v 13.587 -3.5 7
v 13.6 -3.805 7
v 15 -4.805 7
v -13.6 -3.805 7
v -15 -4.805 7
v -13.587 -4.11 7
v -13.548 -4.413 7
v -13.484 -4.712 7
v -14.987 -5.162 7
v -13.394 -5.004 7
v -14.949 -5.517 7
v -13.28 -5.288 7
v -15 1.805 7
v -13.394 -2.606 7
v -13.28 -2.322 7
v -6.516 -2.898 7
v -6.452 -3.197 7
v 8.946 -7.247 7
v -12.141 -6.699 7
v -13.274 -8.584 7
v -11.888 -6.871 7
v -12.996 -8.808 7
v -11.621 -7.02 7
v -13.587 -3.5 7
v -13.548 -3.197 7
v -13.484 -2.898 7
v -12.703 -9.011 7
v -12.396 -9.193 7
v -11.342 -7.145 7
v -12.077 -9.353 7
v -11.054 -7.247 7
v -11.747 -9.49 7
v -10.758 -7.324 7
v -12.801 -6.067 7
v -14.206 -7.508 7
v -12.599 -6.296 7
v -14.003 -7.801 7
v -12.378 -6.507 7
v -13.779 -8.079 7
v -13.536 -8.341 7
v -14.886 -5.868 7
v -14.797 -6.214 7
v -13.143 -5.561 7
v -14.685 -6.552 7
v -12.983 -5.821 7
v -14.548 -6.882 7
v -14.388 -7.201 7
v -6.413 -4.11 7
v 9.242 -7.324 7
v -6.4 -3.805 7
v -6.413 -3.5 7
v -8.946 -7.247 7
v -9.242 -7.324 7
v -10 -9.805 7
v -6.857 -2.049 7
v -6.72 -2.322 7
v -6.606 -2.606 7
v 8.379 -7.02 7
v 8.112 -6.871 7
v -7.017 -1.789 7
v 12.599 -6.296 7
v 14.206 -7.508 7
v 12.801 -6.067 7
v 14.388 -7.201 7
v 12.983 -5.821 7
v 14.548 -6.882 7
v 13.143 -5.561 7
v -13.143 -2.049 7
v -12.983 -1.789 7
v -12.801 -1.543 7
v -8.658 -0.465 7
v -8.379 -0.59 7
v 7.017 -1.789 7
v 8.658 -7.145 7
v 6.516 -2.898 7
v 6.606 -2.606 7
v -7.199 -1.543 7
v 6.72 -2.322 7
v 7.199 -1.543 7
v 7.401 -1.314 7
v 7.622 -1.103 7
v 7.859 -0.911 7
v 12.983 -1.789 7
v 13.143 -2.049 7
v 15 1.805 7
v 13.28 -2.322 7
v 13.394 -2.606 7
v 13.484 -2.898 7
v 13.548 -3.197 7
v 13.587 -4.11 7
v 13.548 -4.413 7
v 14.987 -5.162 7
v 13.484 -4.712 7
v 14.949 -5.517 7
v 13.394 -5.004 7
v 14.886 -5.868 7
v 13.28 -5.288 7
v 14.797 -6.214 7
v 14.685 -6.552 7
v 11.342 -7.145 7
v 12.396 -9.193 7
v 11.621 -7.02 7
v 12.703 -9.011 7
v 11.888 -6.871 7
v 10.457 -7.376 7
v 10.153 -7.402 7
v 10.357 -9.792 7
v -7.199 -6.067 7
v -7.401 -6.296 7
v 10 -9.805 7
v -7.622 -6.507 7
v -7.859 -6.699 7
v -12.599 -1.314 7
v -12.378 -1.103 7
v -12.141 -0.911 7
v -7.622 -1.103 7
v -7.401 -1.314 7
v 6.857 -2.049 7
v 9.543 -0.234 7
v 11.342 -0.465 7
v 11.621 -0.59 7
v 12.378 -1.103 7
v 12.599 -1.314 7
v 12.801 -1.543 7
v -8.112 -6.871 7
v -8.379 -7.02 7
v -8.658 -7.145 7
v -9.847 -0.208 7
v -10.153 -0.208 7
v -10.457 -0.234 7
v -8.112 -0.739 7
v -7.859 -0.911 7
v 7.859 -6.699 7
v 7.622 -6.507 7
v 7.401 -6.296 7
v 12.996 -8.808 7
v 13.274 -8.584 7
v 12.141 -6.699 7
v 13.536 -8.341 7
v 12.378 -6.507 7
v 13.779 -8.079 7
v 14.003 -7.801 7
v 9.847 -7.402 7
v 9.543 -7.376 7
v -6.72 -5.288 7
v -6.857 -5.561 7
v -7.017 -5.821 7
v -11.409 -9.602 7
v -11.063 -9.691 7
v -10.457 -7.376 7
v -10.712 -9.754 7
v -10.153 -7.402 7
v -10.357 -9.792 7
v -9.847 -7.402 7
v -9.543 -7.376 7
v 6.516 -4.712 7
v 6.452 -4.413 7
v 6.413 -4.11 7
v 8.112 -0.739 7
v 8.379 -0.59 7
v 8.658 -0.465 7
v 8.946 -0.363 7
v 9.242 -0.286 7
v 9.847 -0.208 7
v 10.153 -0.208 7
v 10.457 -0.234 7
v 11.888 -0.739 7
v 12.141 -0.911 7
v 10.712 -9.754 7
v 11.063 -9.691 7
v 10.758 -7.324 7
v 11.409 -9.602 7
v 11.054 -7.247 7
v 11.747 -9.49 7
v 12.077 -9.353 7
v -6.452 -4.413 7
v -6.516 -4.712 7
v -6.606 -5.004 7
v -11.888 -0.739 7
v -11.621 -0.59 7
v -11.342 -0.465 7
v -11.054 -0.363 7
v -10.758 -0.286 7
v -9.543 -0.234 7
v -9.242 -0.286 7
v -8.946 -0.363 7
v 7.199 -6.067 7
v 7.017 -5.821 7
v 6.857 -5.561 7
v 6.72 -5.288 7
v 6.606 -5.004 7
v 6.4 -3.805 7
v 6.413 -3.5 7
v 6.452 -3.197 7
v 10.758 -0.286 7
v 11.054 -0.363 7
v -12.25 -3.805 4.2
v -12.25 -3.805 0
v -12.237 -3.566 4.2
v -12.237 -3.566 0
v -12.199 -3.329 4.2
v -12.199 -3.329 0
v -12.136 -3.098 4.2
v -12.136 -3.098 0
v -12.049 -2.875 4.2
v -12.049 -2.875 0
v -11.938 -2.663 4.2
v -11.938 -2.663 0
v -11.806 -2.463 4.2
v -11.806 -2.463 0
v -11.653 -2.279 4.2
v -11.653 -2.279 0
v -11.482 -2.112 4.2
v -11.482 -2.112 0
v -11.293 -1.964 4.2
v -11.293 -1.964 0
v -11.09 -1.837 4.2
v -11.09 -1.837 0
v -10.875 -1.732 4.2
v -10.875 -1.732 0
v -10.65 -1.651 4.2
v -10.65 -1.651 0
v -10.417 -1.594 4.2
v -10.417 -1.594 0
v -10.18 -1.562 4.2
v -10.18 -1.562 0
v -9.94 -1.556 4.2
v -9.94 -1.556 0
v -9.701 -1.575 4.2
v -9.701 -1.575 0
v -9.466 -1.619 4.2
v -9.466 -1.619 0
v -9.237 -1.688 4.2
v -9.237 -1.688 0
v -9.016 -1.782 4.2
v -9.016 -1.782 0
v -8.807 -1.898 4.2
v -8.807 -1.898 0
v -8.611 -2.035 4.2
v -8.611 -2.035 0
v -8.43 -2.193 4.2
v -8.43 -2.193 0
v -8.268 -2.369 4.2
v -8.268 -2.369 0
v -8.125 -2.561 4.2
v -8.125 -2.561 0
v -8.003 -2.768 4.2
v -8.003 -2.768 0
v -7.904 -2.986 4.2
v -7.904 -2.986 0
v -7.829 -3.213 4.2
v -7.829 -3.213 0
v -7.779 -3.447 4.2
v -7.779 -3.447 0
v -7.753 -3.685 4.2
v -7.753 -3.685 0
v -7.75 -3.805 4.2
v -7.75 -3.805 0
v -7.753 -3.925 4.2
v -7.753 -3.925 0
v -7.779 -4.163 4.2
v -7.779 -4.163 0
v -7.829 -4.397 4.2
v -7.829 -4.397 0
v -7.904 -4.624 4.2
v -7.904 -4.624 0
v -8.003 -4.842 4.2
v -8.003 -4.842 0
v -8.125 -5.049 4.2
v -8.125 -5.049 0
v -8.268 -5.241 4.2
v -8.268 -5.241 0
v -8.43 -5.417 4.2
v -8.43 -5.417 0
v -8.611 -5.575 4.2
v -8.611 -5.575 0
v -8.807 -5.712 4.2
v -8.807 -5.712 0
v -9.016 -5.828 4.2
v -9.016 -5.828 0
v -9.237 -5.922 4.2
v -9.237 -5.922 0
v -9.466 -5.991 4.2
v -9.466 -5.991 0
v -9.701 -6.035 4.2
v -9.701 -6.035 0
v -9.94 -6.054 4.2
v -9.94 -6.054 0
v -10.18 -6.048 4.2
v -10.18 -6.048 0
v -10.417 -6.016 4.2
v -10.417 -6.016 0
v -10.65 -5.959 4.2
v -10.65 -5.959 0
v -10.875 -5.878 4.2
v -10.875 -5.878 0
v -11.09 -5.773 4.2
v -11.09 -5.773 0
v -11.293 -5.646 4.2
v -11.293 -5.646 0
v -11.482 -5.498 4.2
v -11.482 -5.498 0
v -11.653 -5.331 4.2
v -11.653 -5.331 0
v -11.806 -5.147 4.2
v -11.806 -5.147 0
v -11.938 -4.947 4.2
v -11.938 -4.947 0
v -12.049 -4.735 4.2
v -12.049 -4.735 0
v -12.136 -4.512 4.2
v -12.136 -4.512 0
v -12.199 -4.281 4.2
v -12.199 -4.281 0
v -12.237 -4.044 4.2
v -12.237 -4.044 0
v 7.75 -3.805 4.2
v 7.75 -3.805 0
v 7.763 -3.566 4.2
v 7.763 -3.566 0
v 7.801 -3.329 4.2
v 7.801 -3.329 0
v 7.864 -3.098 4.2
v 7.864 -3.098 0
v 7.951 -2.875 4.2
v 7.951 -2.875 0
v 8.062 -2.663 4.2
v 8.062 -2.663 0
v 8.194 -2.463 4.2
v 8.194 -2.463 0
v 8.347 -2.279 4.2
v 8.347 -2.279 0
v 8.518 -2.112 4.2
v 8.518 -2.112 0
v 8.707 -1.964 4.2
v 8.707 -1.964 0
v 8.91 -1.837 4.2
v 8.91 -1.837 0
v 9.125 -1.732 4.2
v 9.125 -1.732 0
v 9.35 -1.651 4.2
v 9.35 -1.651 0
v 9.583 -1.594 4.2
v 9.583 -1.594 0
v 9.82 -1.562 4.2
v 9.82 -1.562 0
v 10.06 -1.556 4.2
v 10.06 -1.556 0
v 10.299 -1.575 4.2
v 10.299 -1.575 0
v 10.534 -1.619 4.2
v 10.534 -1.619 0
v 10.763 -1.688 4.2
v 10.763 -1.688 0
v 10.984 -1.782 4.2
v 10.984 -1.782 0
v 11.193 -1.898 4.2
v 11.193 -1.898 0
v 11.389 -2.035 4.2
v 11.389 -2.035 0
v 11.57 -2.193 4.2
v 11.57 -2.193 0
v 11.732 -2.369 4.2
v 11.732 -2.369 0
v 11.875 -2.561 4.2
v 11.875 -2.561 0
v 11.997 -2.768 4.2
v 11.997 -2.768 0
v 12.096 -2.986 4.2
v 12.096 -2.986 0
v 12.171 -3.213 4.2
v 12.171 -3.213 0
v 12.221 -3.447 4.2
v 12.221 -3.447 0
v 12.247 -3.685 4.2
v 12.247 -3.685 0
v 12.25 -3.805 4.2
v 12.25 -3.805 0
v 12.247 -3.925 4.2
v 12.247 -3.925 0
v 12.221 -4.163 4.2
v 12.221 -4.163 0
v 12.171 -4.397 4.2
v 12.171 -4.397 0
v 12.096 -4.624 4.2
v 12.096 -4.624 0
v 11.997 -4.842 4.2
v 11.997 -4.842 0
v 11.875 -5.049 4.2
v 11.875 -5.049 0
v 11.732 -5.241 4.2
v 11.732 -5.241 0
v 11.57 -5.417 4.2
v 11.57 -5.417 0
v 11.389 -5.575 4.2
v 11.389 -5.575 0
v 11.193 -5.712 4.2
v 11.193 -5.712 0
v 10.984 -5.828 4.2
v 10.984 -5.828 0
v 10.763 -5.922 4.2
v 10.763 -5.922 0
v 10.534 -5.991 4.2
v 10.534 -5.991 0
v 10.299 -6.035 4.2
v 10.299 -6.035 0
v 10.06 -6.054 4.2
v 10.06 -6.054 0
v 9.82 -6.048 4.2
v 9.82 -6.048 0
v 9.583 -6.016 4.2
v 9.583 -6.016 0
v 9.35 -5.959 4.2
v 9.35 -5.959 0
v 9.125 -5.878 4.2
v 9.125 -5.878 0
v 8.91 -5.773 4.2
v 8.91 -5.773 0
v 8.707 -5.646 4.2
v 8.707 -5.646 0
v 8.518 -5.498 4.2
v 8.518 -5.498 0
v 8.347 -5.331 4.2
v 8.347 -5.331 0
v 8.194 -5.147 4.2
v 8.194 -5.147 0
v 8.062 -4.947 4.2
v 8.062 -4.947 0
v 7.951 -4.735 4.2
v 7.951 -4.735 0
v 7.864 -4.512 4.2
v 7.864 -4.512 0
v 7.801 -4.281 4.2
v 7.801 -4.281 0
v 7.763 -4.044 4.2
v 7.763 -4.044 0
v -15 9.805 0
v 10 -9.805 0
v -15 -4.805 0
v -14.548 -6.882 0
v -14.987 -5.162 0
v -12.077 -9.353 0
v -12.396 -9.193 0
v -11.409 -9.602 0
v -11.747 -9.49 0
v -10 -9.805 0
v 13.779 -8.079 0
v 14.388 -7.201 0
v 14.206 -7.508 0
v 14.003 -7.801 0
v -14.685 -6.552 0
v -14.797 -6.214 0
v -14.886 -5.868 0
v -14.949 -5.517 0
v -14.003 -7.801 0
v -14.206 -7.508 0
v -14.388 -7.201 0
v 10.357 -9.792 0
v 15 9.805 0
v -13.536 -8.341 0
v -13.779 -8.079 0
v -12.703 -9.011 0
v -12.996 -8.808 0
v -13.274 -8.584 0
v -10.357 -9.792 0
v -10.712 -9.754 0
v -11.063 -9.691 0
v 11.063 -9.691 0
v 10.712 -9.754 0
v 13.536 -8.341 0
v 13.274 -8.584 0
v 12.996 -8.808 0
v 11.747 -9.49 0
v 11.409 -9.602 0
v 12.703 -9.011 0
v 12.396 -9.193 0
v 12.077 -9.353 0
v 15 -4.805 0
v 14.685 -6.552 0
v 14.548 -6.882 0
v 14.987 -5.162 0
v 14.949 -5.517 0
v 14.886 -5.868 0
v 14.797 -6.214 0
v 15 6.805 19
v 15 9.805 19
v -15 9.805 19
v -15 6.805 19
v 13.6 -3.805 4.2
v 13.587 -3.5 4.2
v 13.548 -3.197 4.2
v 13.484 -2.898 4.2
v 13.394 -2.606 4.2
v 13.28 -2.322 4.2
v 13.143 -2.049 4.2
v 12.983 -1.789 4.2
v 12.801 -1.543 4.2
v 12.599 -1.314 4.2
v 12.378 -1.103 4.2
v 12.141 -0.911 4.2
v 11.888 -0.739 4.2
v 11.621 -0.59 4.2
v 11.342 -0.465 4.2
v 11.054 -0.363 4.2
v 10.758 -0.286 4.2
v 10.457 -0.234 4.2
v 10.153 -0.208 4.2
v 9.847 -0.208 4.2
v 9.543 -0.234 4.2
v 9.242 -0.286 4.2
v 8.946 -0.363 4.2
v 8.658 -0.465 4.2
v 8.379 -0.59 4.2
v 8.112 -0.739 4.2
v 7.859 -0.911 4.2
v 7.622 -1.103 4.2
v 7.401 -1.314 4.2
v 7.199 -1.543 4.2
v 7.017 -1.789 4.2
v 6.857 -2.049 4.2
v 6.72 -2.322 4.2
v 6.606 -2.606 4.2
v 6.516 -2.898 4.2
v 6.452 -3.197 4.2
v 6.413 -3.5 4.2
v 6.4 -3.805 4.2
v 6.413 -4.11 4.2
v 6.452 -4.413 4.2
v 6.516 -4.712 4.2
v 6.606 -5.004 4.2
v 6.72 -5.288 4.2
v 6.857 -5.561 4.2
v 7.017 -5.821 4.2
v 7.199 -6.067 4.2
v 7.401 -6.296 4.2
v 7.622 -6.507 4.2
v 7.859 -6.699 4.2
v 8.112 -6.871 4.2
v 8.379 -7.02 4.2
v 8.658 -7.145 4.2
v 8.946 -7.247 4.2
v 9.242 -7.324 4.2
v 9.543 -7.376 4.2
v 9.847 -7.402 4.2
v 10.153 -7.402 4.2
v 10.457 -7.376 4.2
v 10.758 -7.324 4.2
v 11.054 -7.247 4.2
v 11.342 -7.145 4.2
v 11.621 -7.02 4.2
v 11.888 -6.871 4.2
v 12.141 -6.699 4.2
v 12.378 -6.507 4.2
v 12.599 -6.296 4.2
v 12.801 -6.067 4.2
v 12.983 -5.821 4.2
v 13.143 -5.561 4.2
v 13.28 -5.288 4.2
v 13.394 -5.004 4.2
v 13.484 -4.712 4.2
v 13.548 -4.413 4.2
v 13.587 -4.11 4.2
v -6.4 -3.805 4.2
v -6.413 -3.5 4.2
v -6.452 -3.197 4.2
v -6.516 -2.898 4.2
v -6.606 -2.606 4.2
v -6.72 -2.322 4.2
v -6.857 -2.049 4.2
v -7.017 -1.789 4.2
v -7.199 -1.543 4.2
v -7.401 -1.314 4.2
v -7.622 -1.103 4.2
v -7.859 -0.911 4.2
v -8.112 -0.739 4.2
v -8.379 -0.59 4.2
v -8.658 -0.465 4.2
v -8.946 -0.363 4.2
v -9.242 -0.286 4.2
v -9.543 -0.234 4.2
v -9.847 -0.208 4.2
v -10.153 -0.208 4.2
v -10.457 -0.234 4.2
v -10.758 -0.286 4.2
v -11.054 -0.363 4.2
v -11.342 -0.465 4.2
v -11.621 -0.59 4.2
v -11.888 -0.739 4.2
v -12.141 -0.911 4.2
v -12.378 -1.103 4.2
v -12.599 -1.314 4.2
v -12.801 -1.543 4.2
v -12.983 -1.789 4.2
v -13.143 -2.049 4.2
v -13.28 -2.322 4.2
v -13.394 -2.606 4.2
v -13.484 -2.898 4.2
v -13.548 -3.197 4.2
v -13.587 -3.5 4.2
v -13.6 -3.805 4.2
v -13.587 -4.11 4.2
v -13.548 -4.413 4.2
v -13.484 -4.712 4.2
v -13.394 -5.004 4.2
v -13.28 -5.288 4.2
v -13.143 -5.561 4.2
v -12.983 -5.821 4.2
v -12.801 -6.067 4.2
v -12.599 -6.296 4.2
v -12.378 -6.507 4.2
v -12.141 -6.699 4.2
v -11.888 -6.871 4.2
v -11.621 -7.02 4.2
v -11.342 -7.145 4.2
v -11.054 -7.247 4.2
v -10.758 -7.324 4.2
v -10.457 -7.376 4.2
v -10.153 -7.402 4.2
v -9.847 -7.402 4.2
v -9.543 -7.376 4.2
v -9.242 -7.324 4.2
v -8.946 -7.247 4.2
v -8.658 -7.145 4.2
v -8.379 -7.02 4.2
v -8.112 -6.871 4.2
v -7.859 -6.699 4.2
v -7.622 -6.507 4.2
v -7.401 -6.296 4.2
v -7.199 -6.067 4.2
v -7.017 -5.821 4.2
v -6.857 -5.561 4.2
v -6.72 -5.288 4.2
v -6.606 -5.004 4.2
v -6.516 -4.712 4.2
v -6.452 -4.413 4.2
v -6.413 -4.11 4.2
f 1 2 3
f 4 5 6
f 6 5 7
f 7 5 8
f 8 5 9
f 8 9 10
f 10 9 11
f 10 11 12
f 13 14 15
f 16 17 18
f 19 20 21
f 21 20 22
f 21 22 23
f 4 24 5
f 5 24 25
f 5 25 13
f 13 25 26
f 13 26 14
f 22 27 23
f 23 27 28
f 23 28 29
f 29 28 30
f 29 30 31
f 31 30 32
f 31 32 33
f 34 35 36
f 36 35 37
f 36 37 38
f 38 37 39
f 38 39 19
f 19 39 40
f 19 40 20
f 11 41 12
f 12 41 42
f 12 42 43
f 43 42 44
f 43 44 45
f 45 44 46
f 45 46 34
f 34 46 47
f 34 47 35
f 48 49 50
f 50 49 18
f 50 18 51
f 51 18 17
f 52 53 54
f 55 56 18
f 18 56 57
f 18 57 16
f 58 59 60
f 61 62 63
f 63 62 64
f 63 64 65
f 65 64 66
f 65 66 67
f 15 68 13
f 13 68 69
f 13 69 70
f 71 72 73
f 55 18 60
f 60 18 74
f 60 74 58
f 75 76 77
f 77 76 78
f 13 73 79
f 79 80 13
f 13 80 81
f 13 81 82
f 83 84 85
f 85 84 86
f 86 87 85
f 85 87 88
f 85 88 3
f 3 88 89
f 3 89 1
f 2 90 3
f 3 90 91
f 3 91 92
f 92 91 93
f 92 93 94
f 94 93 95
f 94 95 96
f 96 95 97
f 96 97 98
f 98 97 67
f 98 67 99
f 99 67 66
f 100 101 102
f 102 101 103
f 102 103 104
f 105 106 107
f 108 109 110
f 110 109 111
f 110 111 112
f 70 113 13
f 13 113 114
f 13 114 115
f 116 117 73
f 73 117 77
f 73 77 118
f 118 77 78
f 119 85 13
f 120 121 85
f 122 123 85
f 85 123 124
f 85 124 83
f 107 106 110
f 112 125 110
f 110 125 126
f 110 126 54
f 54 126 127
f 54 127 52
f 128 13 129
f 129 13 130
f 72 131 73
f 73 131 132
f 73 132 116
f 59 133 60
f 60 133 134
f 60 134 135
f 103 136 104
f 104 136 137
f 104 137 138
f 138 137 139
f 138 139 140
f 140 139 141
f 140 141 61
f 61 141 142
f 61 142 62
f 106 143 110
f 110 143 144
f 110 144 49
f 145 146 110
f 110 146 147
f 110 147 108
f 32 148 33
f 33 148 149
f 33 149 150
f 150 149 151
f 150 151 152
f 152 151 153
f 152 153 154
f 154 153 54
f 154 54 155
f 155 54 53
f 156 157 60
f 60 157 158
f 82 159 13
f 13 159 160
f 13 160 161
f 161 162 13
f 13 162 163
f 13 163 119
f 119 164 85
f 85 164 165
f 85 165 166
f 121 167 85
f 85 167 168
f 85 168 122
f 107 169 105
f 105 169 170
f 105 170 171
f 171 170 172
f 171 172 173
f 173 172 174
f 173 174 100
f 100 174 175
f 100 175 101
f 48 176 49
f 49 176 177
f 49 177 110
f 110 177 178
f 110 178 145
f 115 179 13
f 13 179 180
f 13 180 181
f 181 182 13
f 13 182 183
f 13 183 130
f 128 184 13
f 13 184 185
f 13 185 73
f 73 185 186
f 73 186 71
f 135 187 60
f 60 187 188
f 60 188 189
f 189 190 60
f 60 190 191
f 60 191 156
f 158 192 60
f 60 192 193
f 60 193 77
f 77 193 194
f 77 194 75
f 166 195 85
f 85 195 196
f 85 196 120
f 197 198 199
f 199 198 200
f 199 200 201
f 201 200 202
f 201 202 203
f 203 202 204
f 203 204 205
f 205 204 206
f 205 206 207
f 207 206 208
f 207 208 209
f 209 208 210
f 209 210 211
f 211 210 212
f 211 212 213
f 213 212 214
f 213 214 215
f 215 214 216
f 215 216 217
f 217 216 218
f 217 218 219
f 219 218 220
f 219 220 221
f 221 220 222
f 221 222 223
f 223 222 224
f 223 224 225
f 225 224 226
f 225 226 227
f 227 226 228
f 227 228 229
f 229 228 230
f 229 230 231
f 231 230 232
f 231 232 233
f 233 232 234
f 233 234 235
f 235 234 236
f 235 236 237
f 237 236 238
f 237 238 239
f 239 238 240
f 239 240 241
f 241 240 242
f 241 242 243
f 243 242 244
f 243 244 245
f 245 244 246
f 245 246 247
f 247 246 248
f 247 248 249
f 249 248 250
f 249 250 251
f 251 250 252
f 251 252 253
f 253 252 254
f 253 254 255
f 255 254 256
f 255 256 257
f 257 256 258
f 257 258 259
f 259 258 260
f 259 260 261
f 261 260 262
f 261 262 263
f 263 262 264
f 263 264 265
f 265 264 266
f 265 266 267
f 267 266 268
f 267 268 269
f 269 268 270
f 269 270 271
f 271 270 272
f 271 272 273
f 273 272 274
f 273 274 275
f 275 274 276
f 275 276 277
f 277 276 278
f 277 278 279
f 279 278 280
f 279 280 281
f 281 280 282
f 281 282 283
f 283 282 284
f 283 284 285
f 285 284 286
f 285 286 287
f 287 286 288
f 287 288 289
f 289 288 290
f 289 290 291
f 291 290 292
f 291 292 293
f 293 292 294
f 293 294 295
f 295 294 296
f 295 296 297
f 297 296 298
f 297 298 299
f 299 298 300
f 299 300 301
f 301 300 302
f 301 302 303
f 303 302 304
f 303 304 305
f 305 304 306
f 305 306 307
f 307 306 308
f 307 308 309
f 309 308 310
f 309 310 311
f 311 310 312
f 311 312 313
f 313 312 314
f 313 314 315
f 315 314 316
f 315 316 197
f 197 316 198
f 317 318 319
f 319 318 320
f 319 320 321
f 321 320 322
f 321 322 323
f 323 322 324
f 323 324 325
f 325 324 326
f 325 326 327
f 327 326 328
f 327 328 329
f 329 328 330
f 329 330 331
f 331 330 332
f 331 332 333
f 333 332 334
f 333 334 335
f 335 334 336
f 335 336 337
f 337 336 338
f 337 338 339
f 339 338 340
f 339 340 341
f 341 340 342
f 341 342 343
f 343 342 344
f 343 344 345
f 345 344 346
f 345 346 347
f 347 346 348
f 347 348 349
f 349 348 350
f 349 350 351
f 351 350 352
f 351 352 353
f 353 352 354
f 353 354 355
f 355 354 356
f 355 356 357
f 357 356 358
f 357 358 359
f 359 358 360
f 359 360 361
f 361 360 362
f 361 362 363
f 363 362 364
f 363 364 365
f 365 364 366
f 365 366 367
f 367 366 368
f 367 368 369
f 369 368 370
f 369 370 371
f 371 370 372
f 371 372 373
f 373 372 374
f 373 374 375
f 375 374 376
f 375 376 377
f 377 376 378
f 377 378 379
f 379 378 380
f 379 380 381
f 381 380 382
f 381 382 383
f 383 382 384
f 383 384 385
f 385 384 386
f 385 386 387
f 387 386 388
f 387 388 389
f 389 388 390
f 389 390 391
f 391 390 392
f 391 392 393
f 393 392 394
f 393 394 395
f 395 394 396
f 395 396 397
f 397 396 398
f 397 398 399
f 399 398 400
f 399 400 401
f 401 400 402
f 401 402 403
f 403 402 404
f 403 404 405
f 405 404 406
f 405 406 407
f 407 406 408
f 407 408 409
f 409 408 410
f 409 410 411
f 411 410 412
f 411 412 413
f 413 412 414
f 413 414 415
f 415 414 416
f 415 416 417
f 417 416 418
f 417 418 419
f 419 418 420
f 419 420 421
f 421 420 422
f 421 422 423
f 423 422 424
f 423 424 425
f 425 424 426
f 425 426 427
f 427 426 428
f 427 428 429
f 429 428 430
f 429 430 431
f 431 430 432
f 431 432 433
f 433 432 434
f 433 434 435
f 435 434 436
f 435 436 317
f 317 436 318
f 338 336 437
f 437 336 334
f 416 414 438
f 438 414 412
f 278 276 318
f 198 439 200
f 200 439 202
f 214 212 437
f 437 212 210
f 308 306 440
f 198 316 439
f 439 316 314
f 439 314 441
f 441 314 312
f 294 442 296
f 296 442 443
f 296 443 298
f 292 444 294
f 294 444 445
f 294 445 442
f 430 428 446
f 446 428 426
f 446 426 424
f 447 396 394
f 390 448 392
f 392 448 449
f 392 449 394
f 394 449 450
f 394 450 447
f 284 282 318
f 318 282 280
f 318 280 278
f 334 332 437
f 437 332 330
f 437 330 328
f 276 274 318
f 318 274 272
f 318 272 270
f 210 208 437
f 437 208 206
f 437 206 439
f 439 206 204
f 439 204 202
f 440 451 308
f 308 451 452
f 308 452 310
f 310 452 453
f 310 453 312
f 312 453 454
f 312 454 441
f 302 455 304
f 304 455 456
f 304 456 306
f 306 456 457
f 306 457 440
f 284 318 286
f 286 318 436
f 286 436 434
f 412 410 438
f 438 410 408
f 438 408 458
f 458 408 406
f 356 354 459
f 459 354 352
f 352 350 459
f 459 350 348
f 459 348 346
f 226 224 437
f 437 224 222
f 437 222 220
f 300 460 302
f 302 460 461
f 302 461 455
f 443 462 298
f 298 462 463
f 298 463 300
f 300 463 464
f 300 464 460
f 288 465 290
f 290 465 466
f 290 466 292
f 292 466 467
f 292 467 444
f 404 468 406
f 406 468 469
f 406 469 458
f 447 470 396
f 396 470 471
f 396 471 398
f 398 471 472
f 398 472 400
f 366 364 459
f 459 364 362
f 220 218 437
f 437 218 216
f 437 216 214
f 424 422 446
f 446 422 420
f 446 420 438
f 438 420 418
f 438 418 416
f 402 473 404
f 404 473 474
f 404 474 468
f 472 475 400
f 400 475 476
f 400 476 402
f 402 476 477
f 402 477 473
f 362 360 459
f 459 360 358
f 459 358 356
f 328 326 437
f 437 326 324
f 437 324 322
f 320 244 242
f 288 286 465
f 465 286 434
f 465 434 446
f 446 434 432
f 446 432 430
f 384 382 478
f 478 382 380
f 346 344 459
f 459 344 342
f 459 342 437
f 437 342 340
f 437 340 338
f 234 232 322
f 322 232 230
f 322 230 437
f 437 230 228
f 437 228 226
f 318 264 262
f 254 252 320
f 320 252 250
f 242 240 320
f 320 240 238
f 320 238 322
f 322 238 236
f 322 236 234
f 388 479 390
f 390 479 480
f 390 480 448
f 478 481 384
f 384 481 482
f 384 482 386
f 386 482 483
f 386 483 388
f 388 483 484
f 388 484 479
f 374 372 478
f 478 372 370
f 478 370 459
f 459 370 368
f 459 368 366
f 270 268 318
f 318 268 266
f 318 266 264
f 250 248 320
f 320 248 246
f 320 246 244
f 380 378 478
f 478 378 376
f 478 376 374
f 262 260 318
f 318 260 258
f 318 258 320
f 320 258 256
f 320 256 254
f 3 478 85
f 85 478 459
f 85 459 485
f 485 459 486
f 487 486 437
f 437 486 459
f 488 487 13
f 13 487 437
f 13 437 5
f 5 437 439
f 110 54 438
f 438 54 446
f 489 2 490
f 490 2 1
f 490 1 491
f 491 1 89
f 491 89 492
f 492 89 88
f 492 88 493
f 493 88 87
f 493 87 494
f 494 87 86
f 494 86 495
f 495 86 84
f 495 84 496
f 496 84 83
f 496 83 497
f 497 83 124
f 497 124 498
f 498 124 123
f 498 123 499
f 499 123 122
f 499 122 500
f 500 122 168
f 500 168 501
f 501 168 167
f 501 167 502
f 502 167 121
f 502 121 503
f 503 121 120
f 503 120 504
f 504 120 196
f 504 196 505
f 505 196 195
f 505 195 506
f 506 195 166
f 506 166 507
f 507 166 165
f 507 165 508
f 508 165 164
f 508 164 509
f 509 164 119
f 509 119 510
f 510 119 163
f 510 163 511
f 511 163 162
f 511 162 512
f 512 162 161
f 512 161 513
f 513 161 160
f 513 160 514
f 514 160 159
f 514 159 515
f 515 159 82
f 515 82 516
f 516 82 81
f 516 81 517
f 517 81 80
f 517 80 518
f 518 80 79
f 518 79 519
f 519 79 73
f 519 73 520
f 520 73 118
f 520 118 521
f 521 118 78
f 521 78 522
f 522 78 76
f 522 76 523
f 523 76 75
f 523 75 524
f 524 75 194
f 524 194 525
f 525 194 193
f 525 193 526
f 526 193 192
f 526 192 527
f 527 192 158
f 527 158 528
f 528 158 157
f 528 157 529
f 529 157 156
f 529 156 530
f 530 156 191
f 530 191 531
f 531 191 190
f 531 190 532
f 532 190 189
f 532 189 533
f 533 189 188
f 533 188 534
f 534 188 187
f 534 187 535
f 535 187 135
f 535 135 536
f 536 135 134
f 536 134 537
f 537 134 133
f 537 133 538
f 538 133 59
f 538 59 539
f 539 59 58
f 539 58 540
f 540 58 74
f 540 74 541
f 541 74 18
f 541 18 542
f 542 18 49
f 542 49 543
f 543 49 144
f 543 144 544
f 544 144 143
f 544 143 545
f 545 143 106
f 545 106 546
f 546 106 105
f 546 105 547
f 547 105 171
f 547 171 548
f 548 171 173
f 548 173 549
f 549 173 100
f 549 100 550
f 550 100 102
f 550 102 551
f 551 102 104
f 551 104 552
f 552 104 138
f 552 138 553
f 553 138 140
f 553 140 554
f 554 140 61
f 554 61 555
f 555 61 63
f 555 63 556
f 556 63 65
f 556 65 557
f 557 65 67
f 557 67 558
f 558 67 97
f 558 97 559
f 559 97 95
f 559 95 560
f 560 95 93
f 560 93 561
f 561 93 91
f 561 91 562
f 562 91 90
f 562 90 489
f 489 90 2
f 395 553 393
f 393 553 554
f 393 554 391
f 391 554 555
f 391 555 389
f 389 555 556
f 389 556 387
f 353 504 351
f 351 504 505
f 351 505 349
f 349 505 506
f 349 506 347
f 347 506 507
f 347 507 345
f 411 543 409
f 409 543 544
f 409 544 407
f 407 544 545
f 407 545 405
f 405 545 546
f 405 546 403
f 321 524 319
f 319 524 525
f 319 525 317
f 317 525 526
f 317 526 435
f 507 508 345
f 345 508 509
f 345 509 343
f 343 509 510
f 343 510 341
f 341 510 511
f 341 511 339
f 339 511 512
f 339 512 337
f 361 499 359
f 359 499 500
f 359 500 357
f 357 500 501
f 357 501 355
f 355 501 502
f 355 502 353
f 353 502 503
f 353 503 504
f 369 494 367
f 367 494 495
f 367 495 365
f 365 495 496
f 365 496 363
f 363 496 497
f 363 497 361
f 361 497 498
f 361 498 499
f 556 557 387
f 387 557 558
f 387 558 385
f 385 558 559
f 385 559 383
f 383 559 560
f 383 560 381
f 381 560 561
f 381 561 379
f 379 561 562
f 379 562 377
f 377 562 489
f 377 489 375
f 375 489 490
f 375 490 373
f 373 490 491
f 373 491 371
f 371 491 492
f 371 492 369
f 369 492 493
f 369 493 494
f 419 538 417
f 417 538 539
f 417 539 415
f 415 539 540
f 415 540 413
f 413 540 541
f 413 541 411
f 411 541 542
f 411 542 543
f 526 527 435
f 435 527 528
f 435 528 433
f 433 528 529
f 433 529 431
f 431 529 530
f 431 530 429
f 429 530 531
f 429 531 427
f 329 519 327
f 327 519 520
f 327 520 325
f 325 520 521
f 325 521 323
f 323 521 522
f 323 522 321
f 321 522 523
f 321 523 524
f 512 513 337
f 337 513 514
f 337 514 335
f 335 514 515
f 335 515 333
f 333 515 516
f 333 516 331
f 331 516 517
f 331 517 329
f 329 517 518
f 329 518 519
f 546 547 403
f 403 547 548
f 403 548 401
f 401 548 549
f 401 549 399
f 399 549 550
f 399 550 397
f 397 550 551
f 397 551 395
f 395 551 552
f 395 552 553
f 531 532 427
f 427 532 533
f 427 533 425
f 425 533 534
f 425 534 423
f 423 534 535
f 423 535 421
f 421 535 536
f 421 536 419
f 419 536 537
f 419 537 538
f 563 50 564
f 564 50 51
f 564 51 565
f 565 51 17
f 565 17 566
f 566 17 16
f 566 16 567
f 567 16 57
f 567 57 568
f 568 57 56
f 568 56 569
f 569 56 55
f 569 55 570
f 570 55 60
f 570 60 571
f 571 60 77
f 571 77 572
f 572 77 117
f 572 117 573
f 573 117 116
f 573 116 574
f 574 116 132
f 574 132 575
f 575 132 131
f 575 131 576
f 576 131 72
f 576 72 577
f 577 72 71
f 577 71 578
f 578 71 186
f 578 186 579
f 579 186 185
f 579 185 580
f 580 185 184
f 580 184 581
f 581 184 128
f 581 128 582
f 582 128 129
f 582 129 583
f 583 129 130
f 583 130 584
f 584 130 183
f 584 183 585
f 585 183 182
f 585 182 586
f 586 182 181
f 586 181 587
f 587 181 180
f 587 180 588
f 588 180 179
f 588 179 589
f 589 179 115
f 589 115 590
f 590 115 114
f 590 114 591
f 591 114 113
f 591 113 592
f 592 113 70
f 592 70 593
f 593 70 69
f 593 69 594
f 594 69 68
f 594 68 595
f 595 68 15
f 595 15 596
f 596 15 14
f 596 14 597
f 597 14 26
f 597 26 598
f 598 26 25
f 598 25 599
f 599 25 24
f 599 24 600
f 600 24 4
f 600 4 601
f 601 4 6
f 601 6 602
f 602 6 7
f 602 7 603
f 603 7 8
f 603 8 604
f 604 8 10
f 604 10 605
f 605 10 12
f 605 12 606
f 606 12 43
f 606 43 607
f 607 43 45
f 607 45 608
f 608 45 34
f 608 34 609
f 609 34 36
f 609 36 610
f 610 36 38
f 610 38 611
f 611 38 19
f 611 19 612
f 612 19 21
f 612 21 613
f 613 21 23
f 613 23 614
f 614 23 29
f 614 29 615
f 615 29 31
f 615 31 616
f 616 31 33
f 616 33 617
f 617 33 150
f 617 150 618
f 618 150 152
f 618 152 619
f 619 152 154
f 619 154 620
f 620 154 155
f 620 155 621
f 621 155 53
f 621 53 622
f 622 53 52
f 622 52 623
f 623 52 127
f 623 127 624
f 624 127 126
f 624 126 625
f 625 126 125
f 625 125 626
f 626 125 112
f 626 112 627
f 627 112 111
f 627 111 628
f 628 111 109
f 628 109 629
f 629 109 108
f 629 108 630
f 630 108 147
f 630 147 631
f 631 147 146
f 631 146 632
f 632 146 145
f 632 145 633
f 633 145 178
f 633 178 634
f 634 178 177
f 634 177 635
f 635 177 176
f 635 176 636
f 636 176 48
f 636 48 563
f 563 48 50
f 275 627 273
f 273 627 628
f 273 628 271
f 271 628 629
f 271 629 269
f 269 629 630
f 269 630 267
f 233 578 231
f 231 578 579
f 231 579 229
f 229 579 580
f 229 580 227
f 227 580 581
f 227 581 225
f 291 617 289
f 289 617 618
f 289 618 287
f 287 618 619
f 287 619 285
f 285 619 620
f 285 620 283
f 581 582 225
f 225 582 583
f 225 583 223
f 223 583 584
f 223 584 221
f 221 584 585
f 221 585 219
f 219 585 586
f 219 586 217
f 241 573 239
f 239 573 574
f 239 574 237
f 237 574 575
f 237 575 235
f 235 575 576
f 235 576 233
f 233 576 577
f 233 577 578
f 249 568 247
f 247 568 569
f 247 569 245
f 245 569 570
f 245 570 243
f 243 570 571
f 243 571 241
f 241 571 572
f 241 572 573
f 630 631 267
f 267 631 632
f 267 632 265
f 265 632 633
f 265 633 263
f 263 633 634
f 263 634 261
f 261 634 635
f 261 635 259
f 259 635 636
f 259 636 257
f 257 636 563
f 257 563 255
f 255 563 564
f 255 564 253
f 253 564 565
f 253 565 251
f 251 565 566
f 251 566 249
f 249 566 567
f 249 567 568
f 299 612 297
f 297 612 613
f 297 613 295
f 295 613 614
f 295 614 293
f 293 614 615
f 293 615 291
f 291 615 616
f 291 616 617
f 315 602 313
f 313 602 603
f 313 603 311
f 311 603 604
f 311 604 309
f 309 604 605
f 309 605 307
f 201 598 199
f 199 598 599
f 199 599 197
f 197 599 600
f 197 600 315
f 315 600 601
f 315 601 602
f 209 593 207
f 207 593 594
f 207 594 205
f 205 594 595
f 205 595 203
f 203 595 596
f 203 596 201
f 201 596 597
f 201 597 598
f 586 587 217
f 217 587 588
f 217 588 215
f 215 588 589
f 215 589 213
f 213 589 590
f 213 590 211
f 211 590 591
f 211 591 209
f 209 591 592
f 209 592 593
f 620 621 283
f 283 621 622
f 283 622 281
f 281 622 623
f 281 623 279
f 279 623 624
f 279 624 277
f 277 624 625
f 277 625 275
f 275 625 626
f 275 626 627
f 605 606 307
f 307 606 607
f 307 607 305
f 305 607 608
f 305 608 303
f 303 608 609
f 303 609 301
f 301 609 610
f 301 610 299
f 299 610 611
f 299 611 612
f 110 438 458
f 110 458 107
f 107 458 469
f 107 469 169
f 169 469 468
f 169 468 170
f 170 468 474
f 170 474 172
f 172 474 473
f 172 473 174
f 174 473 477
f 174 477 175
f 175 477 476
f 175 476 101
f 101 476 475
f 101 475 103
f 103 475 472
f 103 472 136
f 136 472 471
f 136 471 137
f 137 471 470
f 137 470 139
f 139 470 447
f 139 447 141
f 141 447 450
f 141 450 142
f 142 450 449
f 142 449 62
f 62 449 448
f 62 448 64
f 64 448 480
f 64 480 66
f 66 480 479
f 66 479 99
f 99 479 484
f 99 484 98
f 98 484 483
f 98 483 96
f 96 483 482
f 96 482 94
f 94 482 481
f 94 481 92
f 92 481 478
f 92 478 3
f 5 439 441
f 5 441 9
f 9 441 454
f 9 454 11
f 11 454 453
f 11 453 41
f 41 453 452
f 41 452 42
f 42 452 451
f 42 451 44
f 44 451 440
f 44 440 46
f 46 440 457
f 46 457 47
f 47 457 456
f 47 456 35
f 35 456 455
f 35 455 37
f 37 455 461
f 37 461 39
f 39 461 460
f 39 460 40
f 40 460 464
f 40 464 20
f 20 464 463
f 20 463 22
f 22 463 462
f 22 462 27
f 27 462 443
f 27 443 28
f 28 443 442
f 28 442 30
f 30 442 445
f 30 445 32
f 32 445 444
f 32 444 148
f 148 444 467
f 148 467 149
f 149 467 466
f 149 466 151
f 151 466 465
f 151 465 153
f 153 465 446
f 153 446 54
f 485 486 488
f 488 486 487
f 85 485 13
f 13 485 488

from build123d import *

# Parameters (mm, degrees)
SKETCH1_W           = 30
SKETCH1_H           = 19.61
SKETCH1_R           = 2.25
BOSS_EXTRUDE1_DEPTH = 7
SKETCH2_R           = 3.6
CUT_EXTRUDE1_DEPTH  = 2.8
FILLET2_R           = 5
BOSS_EXTRUDE2_DEPTH = 30


with BuildPart() as part:
    # Sketch1 → Boss-Extrude1 (new body)
    with BuildSketch(Plane.XY):
        Rectangle(SKETCH1_W, SKETCH1_H)
        with Locations((-10, -3.805)):
            Circle(SKETCH1_R, mode=Mode.SUBTRACT)
        with Locations((10, -3.805)):
            Circle(SKETCH1_R, mode=Mode.SUBTRACT)
    extrude(amount=BOSS_EXTRUDE1_DEPTH)

    # Sketch2 → Cut-Extrude1 (cut)
    with BuildSketch(Plane.XY.offset(7)):
        with Locations((-10, -3.805)):
            Circle(SKETCH2_R)
        with Locations((10, -3.805)):
            Circle(SKETCH2_R)
    extrude(amount=-CUT_EXTRUDE1_DEPTH, mode=Mode.SUBTRACT)

    # Fillet2
    fillet2_edges = [part.edges().sort_by_distance(p)[0] for p in [
        (15, -9.805, 3.5),
        (-15, -9.805, 3.5),
    ]]
    fillet(fillet2_edges, radius=FILLET2_R)

    # Sketch3 → Boss-Extrude2 (add, through all)
    with BuildSketch(Plane.ZY.offset(15)):
        Polygon((7, 1.805), (7, 9.805), (19, 9.805), (19, 6.805), align=None)
    extrude(amount=-BOSS_EXTRUDE2_DEPTH)


solid = part.part
